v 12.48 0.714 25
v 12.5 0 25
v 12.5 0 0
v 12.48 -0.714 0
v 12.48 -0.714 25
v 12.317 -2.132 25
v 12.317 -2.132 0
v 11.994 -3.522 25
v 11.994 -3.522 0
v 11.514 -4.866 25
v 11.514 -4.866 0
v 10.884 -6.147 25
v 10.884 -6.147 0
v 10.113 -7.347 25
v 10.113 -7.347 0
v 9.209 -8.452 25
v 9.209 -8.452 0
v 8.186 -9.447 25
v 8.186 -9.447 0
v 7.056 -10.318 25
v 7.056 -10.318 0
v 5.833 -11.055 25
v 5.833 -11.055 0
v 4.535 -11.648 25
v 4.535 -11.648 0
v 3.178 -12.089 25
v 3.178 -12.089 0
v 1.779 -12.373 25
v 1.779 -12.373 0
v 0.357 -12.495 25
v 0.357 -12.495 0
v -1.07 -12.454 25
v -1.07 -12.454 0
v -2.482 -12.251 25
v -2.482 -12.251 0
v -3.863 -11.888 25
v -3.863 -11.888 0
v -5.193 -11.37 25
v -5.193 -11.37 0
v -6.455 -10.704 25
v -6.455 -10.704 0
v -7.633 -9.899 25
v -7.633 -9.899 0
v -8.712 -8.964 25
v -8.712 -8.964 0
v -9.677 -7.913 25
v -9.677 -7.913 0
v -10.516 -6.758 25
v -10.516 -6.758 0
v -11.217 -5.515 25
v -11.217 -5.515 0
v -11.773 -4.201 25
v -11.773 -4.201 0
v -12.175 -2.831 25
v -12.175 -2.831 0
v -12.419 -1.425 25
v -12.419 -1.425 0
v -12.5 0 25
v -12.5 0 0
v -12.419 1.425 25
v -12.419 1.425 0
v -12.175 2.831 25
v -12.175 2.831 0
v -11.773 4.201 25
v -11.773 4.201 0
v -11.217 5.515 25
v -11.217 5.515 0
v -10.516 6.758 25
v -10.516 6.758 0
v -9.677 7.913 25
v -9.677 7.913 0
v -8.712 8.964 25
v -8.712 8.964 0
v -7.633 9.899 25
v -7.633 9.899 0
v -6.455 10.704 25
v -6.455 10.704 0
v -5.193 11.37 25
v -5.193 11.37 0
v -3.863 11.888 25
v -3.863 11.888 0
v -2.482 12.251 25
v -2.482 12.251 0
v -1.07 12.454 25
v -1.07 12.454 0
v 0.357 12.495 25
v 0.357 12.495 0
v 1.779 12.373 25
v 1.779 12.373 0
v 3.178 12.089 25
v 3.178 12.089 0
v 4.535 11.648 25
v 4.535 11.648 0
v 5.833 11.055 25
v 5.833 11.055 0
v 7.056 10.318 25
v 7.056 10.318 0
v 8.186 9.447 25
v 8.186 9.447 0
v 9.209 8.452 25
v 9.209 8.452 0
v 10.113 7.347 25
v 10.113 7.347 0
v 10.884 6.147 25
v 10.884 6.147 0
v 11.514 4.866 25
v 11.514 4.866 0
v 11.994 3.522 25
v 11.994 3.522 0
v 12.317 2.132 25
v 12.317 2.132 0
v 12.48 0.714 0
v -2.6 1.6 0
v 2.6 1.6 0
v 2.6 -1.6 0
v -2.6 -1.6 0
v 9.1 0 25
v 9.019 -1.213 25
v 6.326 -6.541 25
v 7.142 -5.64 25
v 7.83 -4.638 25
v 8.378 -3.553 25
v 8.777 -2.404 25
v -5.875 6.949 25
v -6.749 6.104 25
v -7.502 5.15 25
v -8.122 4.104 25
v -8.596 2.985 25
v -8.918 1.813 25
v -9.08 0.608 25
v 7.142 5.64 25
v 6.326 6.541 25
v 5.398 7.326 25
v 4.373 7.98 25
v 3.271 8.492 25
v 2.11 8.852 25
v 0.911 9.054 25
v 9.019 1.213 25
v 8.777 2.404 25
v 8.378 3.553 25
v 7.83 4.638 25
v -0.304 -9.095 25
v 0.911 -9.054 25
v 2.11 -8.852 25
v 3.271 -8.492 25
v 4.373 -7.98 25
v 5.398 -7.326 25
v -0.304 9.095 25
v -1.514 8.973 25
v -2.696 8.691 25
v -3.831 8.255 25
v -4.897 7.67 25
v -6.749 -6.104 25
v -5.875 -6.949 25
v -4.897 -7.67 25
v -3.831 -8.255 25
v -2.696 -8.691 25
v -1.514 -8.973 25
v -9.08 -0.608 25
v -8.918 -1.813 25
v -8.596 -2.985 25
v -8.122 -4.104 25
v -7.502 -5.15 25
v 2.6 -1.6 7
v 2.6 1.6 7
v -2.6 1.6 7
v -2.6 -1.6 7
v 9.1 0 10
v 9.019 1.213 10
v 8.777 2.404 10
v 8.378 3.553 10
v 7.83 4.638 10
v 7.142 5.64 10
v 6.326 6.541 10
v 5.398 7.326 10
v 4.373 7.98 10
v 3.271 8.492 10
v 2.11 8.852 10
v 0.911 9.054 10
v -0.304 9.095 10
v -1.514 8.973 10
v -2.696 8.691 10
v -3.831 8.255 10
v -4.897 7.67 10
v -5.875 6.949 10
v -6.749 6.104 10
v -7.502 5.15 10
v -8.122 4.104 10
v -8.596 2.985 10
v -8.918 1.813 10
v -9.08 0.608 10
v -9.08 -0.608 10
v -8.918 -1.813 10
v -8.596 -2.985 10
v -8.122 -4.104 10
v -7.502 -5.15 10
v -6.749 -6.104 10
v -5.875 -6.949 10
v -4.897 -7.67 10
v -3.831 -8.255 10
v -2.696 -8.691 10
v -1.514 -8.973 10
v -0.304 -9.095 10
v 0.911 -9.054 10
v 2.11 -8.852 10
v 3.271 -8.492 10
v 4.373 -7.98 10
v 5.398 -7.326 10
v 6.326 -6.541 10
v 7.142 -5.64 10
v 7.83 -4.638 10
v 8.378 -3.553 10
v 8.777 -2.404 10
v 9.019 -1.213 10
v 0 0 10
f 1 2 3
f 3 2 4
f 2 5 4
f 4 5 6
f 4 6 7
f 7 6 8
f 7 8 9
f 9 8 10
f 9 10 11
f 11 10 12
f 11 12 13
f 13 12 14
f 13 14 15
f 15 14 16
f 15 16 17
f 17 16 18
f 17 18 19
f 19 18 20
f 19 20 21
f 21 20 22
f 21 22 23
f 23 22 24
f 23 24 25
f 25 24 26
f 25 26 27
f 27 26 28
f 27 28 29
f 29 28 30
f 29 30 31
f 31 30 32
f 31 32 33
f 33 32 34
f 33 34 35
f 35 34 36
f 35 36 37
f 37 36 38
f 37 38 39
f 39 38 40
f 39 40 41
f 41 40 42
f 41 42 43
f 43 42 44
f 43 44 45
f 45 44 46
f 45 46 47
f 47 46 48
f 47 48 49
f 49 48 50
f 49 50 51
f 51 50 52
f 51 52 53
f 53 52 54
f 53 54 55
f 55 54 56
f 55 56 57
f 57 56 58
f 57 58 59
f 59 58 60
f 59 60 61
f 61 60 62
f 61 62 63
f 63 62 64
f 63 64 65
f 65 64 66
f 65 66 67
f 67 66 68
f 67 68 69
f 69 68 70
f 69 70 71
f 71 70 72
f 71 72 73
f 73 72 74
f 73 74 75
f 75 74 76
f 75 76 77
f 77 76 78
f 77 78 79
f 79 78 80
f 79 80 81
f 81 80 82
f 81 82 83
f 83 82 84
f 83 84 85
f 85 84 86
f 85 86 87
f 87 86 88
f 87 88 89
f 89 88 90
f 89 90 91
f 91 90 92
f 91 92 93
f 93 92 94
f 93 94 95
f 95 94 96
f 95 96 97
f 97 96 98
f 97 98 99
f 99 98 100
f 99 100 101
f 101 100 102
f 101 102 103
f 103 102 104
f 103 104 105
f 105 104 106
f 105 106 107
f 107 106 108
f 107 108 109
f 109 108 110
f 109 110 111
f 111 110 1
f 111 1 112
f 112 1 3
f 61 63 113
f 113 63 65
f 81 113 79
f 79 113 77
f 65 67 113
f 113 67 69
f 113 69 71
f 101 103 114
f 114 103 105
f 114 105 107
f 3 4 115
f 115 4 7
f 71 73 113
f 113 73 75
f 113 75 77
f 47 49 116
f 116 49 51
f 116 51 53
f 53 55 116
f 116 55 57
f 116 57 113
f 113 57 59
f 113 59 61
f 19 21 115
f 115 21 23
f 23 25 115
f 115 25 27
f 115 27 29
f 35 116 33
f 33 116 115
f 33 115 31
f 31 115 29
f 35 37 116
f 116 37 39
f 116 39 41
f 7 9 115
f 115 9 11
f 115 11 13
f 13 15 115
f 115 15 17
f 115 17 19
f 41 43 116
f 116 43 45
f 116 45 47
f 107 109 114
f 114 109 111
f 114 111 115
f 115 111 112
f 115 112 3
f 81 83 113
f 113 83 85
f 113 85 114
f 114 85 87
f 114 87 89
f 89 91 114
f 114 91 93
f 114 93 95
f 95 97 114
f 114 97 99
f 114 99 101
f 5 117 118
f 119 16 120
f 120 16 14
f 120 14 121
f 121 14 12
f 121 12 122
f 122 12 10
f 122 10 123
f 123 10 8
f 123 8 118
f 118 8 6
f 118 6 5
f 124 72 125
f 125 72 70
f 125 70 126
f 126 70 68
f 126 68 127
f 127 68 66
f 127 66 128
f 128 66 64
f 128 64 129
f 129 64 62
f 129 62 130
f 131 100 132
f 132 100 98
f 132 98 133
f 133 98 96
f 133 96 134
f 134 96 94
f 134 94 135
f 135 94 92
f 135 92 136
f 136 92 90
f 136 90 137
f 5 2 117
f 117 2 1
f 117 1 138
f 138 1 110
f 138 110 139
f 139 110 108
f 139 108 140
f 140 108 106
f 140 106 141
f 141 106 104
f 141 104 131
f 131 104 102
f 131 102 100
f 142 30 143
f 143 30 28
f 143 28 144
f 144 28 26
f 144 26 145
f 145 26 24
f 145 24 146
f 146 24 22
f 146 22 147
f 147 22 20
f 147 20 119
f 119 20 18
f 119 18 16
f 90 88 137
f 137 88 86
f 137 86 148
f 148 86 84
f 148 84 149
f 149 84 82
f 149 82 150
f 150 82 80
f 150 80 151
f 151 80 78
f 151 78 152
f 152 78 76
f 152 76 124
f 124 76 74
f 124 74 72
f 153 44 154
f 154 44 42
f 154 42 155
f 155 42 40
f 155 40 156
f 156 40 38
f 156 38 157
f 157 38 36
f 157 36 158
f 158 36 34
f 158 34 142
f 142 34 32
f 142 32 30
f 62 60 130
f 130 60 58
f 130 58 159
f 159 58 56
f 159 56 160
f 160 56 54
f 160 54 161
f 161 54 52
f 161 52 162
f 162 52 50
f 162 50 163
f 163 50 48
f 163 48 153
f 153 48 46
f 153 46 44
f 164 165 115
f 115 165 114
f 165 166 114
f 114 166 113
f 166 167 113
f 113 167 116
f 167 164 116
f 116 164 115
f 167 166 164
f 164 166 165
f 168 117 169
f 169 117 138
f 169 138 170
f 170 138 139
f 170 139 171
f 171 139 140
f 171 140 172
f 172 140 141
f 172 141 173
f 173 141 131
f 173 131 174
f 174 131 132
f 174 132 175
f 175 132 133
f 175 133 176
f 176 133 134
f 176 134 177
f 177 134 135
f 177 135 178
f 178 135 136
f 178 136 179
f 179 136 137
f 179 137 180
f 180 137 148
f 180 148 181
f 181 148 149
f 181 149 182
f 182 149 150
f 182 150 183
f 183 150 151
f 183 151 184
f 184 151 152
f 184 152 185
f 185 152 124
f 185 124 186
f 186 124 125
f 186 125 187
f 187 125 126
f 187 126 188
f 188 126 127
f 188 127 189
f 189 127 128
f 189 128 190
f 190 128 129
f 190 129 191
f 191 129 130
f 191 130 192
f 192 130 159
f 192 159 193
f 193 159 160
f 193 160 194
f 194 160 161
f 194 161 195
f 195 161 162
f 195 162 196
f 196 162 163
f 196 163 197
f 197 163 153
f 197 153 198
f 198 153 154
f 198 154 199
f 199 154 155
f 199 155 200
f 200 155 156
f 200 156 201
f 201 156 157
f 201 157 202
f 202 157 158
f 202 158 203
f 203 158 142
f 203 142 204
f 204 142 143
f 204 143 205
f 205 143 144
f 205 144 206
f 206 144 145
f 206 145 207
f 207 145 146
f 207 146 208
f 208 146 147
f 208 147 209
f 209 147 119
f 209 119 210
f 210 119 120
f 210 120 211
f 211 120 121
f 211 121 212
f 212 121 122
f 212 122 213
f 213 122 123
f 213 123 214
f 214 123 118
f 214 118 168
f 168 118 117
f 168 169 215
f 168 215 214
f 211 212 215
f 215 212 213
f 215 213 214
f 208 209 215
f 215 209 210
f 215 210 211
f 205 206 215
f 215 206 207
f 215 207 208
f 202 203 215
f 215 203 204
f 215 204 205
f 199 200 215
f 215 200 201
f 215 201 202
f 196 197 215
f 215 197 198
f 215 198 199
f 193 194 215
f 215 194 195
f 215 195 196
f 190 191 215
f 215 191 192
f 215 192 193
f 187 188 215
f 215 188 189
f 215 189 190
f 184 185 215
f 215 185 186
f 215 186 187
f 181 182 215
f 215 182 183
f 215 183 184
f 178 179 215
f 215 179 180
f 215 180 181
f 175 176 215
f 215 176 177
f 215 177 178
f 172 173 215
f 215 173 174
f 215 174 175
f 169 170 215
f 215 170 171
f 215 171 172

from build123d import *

# Parameters (mm, degrees)
SKETCH1_R           = 12.5
BOSS_EXTRUDE1_DEPTH = 40
SKETCH2_R           = 19
CUT_EXTRUDE1_DEPTH  = 15
SKETCH3_W           = 5.2
SKETCH3_H           = 3.2
CUT_EXTRUDE2_DEPTH  = 7
SKETCH4_R           = 9.1
CUT_EXTRUDE3_DEPTH  = 15


with BuildPart() as part:
    # Sketch1 → Boss-Extrude1 (new body)
    with BuildSketch(Plane.XY):
        Circle(SKETCH1_R)
    extrude(amount=BOSS_EXTRUDE1_DEPTH)

    # Sketch2 → Cut-Extrude1 (cut)
    with BuildSketch(Plane.XY.offset(40)):
        Circle(SKETCH2_R)
    extrude(amount=-CUT_EXTRUDE1_DEPTH, mode=Mode.SUBTRACT)

    # Sketch3 → Cut-Extrude2 (cut)
    with BuildSketch(Plane(origin=(0, 0, 0), x_dir=(-1, 0, 0), z_dir=(0, 0, -1))):
        Rectangle(SKETCH3_W, SKETCH3_H)
    extrude(amount=-CUT_EXTRUDE2_DEPTH, mode=Mode.SUBTRACT)

    # Sketch4 → Cut-Extrude3 (cut)
    with BuildSketch(Plane.XY.offset(25)):
        Circle(SKETCH4_R)
    extrude(amount=-CUT_EXTRUDE3_DEPTH, mode=Mode.SUBTRACT)


solid = part.part
